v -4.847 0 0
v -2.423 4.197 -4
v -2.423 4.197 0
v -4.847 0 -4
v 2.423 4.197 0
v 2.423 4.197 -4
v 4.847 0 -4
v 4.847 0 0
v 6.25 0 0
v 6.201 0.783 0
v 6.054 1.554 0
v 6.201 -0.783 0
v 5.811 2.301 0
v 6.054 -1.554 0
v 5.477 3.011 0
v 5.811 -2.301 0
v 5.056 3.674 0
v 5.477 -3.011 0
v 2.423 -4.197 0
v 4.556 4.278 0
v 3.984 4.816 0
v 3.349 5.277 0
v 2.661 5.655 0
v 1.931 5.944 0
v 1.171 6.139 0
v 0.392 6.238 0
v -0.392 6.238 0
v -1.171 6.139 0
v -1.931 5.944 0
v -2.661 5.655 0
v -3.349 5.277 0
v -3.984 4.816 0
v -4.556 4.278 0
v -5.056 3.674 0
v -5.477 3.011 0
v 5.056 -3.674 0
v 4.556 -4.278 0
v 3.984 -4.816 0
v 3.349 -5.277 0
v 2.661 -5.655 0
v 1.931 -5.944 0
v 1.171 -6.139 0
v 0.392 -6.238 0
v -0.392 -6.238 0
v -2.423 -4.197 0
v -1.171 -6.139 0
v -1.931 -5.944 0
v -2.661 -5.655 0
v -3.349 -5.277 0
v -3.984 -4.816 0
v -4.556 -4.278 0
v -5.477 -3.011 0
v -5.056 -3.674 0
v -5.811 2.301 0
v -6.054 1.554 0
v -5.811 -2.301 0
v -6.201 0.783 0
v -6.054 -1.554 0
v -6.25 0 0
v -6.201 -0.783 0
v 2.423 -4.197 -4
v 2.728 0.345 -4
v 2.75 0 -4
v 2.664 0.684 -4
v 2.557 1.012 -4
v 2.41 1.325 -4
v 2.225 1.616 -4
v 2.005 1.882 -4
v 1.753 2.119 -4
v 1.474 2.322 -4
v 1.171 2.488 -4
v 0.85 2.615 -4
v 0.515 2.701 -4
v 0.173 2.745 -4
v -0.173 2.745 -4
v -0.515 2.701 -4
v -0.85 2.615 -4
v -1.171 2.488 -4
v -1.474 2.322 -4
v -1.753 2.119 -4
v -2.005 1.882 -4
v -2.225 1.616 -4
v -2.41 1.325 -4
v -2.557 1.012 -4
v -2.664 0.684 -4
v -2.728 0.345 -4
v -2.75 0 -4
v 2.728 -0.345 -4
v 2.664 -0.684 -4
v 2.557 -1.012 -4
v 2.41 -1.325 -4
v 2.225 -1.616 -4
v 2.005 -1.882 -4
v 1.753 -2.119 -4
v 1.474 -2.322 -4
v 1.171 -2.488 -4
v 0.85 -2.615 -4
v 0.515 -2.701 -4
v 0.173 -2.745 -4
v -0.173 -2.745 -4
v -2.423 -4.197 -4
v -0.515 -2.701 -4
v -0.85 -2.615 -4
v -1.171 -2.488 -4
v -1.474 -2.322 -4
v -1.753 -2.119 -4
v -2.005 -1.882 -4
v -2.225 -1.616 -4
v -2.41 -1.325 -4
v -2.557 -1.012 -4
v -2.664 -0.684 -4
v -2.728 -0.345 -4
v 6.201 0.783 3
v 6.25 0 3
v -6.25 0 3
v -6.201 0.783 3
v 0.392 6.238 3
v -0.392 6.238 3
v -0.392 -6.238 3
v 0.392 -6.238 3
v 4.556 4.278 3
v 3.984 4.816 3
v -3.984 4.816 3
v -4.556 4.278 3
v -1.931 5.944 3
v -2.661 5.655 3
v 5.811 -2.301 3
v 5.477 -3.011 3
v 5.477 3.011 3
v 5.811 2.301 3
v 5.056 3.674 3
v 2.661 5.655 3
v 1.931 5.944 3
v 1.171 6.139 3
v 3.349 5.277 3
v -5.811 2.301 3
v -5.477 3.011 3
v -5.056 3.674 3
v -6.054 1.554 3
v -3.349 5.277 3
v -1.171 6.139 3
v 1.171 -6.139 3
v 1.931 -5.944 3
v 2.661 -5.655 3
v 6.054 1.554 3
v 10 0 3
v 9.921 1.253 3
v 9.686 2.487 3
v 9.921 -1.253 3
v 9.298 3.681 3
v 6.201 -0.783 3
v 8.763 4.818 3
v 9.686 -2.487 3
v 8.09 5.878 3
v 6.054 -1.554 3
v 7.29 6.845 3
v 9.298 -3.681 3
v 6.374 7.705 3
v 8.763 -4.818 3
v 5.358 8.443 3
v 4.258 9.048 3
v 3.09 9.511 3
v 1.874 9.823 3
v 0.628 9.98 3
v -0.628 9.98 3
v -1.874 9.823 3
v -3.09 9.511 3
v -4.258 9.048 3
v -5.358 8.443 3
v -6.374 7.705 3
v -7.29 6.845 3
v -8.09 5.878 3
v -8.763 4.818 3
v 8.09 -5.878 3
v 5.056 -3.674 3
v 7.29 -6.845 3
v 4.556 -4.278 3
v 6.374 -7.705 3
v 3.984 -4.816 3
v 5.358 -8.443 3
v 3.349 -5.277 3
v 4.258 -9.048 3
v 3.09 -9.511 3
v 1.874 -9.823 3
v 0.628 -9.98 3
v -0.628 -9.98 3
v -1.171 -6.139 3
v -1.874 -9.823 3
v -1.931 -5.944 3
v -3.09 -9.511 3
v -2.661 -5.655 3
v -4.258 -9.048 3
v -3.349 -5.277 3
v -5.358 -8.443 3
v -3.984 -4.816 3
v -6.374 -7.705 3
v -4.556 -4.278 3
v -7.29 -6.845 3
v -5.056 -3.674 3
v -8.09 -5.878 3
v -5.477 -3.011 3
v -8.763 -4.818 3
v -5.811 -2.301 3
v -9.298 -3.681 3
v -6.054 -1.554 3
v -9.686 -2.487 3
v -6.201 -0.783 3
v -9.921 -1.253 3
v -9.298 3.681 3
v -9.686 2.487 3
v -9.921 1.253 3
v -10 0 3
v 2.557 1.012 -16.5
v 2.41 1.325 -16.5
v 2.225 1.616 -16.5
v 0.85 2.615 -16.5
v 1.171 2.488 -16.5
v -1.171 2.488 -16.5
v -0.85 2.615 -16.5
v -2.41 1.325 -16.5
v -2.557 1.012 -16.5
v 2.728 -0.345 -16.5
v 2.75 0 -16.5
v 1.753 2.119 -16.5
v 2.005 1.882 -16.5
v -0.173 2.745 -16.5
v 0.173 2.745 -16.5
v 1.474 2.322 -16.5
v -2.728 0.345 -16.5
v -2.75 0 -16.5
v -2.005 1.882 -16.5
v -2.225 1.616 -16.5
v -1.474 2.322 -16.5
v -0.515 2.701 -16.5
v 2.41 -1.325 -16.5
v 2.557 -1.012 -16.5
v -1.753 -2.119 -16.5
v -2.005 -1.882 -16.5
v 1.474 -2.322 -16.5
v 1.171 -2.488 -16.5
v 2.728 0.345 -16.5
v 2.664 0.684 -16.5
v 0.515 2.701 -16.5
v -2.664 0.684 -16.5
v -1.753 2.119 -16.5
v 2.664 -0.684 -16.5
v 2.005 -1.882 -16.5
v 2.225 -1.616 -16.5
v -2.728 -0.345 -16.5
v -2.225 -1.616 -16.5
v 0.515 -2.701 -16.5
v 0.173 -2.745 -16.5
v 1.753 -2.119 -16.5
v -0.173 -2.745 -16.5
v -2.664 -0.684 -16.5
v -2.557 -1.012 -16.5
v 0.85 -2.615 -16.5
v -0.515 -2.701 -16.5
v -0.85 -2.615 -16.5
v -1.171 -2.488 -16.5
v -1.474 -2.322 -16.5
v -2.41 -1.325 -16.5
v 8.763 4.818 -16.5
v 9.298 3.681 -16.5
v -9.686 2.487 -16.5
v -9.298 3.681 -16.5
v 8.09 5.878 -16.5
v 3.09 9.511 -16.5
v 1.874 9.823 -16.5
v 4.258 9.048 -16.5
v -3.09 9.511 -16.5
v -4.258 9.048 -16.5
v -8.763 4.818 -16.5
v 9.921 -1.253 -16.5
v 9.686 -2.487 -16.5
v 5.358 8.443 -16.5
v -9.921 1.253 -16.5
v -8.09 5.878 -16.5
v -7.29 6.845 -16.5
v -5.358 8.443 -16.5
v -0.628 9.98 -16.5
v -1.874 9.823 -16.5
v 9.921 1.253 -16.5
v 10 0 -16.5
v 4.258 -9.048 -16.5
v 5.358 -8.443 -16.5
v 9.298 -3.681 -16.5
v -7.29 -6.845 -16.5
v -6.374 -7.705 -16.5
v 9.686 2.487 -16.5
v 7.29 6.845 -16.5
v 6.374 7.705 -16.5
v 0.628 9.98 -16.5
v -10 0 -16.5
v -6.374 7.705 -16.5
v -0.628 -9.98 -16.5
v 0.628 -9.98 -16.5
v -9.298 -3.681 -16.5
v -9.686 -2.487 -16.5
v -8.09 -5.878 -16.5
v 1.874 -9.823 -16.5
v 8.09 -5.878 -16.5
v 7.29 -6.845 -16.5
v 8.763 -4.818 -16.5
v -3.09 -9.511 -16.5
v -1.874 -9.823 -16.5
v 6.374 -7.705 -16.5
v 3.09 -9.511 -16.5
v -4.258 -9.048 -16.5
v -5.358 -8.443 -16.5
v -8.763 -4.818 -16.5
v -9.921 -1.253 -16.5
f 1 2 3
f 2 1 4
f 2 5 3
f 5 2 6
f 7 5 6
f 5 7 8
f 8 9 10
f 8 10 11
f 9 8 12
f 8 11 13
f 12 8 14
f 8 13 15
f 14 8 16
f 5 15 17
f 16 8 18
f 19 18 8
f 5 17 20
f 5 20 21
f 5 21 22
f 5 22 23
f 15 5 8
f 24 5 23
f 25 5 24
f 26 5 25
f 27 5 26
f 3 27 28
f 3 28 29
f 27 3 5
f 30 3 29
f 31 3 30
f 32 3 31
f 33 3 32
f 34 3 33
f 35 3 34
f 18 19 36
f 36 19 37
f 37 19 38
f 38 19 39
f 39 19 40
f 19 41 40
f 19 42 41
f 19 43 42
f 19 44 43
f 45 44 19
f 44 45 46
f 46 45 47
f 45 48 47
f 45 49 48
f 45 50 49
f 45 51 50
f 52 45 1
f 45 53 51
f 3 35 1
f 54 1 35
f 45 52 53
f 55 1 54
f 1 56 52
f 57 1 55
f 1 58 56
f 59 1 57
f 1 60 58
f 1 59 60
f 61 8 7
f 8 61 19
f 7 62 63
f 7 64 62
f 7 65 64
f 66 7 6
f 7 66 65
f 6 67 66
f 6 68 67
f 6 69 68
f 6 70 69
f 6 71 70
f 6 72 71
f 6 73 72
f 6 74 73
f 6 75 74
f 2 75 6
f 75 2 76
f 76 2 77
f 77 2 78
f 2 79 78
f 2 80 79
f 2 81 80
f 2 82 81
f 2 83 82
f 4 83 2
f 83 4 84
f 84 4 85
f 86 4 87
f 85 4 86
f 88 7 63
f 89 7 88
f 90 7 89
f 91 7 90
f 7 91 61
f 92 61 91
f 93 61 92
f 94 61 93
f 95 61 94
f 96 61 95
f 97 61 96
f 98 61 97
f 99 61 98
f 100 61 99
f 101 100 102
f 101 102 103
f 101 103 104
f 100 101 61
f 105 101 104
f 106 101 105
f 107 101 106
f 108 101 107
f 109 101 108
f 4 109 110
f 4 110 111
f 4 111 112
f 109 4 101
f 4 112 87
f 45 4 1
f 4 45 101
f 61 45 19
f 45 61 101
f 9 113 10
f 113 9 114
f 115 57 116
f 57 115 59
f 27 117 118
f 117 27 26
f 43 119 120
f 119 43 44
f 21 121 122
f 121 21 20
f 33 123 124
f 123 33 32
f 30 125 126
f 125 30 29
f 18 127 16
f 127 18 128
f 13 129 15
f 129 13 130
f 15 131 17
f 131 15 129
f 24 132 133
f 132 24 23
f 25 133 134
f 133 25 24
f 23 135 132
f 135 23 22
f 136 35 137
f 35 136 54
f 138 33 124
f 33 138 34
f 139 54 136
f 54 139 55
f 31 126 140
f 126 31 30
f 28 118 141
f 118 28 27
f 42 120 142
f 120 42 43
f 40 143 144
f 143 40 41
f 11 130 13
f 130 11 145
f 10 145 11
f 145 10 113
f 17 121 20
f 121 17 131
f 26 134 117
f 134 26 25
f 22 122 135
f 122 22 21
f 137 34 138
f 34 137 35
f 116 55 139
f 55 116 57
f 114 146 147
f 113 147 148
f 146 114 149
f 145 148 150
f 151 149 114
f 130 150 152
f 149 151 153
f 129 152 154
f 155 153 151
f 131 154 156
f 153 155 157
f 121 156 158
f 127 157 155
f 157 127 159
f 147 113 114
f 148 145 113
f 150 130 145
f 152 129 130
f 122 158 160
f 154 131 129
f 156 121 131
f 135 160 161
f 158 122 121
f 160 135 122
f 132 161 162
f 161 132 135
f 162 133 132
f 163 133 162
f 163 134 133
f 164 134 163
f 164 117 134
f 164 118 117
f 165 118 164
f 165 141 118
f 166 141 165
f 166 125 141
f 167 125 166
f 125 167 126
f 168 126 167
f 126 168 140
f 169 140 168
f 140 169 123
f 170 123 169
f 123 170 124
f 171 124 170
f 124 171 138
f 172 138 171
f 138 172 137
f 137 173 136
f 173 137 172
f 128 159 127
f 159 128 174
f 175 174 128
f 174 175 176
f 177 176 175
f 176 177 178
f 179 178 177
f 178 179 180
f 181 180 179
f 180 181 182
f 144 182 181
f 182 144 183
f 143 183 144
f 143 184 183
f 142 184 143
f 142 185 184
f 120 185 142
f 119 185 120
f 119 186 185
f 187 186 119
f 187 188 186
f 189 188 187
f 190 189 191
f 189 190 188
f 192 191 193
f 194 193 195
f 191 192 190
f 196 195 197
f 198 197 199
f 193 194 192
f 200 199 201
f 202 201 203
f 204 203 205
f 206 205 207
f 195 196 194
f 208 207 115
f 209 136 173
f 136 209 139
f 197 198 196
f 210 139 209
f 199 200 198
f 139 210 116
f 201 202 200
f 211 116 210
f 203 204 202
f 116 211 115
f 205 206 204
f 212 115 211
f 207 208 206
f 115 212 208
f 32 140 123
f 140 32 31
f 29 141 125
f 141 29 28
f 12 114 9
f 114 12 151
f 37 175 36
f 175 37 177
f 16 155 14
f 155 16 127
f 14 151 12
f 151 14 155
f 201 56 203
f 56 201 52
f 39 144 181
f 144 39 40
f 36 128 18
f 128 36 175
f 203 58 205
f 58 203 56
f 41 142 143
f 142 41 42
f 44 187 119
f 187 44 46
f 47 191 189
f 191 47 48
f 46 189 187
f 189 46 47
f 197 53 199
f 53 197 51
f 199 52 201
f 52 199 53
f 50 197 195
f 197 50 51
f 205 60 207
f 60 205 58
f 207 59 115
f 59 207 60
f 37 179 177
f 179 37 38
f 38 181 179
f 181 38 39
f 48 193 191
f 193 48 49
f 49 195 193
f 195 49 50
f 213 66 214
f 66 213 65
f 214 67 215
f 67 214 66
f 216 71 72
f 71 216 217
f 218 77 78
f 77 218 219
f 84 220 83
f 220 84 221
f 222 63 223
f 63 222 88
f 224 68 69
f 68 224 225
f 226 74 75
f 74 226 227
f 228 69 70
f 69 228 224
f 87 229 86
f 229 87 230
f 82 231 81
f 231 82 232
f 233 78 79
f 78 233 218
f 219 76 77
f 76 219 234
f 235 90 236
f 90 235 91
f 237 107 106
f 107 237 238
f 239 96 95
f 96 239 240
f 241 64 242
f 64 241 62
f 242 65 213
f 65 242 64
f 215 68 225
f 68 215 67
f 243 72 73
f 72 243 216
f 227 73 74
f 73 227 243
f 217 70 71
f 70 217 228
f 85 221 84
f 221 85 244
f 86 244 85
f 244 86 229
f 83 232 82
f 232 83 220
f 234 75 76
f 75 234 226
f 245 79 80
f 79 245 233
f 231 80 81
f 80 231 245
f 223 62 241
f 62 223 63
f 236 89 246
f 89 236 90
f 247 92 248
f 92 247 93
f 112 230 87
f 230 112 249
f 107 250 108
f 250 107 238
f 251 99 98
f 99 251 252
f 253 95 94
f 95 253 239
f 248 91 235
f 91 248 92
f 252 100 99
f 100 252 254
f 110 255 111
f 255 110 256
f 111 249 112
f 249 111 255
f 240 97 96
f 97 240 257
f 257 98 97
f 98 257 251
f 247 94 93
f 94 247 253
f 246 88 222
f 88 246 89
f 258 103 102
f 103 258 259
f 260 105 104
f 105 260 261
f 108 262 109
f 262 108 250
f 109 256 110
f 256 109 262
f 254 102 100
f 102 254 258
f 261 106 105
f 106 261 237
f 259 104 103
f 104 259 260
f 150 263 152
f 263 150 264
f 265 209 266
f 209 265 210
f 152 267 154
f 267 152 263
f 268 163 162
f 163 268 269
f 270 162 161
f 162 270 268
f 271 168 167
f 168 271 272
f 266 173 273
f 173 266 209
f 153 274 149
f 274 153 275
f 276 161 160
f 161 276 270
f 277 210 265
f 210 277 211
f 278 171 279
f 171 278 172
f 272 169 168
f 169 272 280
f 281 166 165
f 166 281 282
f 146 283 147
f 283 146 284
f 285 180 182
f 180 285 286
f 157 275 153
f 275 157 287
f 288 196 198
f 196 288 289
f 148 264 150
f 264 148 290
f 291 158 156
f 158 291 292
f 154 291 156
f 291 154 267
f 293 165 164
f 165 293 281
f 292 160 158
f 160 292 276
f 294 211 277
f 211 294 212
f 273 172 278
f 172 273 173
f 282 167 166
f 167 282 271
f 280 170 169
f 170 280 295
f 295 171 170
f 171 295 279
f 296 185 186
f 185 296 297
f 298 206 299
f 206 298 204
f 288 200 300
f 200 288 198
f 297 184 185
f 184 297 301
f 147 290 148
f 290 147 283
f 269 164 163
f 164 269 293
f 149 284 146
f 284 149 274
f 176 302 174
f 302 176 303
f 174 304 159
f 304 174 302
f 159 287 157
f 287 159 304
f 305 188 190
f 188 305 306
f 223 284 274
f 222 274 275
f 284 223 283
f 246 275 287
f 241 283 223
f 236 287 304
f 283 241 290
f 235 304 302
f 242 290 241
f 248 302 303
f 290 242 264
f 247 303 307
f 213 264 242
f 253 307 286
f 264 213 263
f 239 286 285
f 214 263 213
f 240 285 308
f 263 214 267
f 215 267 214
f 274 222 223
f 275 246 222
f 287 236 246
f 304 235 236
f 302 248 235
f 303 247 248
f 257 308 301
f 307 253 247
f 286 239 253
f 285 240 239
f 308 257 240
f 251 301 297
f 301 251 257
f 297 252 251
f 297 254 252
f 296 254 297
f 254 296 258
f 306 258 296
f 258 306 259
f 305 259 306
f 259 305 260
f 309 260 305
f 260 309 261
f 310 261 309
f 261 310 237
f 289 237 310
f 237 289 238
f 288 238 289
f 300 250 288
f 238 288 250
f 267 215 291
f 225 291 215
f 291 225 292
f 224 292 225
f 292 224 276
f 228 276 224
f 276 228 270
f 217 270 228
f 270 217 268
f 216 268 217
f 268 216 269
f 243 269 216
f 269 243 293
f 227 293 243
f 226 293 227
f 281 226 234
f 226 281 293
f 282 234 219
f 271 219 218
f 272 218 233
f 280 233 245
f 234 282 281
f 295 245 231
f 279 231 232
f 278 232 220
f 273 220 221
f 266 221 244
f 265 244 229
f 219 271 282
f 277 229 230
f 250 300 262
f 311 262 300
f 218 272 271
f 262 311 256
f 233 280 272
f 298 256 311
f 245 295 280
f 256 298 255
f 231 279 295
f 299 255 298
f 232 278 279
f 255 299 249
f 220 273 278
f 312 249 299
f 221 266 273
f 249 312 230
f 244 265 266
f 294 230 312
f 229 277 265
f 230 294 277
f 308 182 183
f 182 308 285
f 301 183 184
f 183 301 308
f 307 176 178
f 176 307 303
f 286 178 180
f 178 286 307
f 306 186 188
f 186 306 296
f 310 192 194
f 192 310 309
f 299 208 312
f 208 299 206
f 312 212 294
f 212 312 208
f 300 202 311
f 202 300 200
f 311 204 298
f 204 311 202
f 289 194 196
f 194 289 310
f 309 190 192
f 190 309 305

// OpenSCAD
$fn = 50;

difference() {
	union() {
		translate(v = [0, 0, -16.5]) {
			cylinder(h = 19.5, r = 10.0);
		}
	}
	union() {
		translate(v = [0, 0, 0]) {
			rotate(a = [0, 0, 0]) {
				difference() {
					union() {
						translate(v = [0, 0, -4]) {
							linear_extrude(height = 4) {
								polygon(points = [[4.8468, 0.0], [2.4234000000000004, 4.197451927062417], [-2.423399999999999, 4.197451927062417], [-4.8468, 5.935618106107392e-16], [-2.423400000000002, -4.197451927062416], [2.423399999999997, -4.197451927062419]]);
							}
						}
					}
					union();
				}
			}
		}
		#cylinder(h = 3, r = 6.25);
		#translate(v = [0, 0, -100.0]) {
			cylinder(h = 200, r = 2.75);
		}
	}
}
